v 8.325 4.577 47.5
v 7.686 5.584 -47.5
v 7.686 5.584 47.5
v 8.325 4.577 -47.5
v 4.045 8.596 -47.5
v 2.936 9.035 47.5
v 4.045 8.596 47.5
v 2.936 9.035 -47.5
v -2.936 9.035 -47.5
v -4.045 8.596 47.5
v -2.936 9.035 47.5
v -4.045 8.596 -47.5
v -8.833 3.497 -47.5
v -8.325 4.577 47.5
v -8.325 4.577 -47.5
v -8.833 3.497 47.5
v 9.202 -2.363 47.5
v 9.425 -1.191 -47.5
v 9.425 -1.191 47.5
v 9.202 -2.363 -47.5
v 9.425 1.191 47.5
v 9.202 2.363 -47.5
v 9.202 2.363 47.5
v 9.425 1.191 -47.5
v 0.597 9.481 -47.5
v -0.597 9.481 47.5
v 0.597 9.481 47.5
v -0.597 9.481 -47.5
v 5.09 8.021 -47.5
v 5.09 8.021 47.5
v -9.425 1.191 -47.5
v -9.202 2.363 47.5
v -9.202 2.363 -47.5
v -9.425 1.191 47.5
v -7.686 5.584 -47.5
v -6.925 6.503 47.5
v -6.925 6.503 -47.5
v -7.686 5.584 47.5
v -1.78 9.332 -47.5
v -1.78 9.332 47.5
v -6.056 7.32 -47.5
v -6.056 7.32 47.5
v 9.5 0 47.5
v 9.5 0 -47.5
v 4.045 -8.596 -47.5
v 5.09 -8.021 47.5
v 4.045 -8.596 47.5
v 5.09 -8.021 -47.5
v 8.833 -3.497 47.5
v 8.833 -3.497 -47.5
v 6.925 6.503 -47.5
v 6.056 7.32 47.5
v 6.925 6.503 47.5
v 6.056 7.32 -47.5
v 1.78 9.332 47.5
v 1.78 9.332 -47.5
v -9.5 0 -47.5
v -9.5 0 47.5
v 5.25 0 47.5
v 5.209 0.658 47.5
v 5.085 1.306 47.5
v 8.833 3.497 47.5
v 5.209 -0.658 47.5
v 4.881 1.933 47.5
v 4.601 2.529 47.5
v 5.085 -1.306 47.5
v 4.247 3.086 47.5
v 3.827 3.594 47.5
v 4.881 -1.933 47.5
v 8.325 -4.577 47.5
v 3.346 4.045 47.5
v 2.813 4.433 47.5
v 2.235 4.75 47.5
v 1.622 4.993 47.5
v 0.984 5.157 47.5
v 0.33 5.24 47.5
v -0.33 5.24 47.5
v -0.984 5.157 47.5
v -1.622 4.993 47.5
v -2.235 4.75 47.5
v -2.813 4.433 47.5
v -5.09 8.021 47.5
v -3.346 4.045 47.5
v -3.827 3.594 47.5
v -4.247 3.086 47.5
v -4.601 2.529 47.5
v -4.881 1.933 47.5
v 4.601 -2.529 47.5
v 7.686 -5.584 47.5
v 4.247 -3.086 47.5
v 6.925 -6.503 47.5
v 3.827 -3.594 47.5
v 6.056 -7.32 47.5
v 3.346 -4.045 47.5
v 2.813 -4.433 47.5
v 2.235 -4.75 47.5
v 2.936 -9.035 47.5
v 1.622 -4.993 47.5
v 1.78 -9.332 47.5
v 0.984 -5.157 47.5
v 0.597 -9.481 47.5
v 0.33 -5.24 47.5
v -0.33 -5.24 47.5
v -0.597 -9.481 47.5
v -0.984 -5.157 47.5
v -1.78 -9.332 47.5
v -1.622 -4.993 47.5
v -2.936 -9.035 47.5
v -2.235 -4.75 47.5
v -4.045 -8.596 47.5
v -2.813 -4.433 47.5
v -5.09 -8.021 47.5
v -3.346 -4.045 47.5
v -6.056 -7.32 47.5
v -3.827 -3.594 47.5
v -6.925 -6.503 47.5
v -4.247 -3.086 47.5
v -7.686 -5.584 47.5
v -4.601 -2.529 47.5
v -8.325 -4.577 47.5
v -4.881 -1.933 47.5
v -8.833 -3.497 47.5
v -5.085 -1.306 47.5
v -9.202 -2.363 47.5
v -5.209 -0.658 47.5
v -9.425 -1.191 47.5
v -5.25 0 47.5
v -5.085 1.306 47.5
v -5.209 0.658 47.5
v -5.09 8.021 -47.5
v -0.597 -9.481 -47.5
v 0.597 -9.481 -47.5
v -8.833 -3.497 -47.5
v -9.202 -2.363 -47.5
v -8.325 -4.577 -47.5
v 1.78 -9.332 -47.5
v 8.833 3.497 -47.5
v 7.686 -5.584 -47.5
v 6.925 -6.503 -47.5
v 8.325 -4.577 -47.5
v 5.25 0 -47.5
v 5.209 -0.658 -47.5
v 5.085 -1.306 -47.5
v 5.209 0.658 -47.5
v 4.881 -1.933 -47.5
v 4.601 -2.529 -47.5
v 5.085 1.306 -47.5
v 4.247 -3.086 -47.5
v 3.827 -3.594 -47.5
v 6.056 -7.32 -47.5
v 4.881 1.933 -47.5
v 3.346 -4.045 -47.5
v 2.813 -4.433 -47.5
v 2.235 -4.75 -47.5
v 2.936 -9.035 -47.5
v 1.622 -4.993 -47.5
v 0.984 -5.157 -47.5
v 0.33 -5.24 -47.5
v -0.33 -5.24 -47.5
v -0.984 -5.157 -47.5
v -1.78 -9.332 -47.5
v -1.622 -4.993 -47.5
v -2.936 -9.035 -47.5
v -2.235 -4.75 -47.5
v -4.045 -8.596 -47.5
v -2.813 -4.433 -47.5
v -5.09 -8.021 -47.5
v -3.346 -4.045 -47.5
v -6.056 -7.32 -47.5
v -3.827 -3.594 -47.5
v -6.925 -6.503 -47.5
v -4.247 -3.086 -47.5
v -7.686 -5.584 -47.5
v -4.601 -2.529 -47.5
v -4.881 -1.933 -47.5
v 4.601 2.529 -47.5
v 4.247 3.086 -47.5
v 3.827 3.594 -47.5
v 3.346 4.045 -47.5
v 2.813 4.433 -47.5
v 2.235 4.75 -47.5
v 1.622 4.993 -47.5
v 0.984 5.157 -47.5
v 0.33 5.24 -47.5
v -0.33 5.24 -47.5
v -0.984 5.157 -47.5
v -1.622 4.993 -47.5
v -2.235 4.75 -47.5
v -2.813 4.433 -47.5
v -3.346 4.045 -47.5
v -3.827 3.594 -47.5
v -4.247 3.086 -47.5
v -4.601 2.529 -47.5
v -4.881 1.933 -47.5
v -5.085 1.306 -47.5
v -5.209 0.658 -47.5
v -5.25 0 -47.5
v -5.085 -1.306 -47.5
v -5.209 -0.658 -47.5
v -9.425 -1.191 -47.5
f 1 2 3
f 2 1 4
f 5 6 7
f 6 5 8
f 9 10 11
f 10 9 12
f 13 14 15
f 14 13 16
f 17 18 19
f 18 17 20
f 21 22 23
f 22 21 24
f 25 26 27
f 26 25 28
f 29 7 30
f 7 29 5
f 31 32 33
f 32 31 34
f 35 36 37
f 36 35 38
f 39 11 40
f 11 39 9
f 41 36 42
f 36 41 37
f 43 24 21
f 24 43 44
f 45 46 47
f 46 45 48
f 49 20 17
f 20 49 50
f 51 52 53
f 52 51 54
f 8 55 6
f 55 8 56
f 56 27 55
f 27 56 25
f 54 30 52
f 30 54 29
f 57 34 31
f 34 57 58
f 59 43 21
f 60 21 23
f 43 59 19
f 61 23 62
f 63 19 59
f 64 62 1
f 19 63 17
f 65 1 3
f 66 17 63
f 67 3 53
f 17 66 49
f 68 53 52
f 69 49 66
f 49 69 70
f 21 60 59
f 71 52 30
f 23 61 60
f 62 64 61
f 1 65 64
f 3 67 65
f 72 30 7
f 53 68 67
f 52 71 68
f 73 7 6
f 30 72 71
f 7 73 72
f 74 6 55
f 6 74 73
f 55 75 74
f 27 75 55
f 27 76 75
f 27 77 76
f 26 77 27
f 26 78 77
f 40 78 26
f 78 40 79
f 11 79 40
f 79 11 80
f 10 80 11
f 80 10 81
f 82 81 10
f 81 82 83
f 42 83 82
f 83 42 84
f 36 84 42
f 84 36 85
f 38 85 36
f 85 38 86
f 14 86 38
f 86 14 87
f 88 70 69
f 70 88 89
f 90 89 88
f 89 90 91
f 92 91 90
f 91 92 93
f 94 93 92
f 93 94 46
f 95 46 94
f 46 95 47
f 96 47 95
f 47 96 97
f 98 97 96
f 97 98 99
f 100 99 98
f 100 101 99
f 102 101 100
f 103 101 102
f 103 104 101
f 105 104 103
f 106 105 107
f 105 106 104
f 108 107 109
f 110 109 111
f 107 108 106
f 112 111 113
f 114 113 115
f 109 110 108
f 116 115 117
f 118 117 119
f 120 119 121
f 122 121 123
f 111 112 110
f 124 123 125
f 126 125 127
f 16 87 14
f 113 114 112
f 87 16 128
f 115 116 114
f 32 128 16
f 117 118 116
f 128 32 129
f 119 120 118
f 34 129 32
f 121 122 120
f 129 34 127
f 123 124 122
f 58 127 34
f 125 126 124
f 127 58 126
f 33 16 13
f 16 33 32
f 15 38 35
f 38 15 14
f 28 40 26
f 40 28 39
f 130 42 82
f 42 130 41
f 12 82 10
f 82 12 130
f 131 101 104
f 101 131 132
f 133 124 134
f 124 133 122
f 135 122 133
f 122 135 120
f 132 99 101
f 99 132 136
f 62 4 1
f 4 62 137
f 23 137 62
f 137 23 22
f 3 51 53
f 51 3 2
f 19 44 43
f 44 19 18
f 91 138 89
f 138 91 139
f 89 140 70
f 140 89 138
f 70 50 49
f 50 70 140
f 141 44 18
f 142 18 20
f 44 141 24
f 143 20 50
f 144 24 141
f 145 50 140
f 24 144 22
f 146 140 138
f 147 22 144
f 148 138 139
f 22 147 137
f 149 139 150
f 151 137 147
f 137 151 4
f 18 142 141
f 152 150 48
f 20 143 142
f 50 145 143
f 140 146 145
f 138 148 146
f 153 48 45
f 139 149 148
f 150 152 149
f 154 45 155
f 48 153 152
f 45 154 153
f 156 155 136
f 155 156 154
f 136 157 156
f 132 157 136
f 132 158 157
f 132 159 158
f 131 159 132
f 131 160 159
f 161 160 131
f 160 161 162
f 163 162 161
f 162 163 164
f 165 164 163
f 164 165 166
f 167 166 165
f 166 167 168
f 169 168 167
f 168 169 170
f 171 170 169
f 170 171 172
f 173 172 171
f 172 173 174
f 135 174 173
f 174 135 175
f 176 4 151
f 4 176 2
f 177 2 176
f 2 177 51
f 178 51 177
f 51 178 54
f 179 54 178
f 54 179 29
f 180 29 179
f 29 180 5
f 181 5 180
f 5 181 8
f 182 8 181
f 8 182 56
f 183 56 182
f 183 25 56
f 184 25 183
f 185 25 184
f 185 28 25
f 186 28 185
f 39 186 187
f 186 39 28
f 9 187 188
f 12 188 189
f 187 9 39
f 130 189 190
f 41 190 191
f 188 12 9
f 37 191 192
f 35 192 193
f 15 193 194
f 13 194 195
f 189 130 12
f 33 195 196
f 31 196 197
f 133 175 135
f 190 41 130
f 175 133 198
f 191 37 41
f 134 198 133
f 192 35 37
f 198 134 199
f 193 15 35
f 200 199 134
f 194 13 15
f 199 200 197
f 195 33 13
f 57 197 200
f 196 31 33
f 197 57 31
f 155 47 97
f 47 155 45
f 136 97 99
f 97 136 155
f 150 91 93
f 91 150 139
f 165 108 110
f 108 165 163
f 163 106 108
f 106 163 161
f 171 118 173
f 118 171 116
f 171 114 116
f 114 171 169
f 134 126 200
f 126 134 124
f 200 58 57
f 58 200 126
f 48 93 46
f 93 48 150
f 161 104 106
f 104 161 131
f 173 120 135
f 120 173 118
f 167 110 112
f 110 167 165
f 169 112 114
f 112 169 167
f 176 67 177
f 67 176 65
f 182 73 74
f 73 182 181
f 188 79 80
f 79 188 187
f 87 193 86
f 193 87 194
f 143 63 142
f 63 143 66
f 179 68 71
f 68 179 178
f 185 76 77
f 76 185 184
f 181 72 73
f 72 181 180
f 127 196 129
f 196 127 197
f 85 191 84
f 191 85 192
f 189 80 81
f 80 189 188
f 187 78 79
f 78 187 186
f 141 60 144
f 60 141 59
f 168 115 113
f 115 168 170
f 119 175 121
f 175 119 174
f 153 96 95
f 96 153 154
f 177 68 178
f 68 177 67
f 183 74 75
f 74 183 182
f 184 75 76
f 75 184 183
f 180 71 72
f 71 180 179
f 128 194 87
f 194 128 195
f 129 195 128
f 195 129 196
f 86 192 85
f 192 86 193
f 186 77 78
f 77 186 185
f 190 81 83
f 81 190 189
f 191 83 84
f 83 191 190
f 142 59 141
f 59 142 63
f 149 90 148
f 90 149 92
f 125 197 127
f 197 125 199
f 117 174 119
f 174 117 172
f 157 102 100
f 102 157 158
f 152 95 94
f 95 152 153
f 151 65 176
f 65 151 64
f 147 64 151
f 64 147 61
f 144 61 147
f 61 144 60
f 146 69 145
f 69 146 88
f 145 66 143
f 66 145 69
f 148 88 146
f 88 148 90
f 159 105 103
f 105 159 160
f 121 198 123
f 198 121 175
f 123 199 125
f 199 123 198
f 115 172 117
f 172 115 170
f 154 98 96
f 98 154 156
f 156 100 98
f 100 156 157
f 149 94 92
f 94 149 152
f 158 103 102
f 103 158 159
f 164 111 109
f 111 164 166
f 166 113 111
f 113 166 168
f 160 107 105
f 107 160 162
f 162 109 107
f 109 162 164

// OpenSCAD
$fn = 50;


difference() {
	union() {
		translate(v = [0, 0, -47.5000000000]) {
			cylinder(h = 95, r = 9.5000000000);
		}
	}
	union() {
		translate(v = [0, 0, -100.0000000000]) {
			cylinder(h = 200, r = 5.2500000000);
		}
	}
}
